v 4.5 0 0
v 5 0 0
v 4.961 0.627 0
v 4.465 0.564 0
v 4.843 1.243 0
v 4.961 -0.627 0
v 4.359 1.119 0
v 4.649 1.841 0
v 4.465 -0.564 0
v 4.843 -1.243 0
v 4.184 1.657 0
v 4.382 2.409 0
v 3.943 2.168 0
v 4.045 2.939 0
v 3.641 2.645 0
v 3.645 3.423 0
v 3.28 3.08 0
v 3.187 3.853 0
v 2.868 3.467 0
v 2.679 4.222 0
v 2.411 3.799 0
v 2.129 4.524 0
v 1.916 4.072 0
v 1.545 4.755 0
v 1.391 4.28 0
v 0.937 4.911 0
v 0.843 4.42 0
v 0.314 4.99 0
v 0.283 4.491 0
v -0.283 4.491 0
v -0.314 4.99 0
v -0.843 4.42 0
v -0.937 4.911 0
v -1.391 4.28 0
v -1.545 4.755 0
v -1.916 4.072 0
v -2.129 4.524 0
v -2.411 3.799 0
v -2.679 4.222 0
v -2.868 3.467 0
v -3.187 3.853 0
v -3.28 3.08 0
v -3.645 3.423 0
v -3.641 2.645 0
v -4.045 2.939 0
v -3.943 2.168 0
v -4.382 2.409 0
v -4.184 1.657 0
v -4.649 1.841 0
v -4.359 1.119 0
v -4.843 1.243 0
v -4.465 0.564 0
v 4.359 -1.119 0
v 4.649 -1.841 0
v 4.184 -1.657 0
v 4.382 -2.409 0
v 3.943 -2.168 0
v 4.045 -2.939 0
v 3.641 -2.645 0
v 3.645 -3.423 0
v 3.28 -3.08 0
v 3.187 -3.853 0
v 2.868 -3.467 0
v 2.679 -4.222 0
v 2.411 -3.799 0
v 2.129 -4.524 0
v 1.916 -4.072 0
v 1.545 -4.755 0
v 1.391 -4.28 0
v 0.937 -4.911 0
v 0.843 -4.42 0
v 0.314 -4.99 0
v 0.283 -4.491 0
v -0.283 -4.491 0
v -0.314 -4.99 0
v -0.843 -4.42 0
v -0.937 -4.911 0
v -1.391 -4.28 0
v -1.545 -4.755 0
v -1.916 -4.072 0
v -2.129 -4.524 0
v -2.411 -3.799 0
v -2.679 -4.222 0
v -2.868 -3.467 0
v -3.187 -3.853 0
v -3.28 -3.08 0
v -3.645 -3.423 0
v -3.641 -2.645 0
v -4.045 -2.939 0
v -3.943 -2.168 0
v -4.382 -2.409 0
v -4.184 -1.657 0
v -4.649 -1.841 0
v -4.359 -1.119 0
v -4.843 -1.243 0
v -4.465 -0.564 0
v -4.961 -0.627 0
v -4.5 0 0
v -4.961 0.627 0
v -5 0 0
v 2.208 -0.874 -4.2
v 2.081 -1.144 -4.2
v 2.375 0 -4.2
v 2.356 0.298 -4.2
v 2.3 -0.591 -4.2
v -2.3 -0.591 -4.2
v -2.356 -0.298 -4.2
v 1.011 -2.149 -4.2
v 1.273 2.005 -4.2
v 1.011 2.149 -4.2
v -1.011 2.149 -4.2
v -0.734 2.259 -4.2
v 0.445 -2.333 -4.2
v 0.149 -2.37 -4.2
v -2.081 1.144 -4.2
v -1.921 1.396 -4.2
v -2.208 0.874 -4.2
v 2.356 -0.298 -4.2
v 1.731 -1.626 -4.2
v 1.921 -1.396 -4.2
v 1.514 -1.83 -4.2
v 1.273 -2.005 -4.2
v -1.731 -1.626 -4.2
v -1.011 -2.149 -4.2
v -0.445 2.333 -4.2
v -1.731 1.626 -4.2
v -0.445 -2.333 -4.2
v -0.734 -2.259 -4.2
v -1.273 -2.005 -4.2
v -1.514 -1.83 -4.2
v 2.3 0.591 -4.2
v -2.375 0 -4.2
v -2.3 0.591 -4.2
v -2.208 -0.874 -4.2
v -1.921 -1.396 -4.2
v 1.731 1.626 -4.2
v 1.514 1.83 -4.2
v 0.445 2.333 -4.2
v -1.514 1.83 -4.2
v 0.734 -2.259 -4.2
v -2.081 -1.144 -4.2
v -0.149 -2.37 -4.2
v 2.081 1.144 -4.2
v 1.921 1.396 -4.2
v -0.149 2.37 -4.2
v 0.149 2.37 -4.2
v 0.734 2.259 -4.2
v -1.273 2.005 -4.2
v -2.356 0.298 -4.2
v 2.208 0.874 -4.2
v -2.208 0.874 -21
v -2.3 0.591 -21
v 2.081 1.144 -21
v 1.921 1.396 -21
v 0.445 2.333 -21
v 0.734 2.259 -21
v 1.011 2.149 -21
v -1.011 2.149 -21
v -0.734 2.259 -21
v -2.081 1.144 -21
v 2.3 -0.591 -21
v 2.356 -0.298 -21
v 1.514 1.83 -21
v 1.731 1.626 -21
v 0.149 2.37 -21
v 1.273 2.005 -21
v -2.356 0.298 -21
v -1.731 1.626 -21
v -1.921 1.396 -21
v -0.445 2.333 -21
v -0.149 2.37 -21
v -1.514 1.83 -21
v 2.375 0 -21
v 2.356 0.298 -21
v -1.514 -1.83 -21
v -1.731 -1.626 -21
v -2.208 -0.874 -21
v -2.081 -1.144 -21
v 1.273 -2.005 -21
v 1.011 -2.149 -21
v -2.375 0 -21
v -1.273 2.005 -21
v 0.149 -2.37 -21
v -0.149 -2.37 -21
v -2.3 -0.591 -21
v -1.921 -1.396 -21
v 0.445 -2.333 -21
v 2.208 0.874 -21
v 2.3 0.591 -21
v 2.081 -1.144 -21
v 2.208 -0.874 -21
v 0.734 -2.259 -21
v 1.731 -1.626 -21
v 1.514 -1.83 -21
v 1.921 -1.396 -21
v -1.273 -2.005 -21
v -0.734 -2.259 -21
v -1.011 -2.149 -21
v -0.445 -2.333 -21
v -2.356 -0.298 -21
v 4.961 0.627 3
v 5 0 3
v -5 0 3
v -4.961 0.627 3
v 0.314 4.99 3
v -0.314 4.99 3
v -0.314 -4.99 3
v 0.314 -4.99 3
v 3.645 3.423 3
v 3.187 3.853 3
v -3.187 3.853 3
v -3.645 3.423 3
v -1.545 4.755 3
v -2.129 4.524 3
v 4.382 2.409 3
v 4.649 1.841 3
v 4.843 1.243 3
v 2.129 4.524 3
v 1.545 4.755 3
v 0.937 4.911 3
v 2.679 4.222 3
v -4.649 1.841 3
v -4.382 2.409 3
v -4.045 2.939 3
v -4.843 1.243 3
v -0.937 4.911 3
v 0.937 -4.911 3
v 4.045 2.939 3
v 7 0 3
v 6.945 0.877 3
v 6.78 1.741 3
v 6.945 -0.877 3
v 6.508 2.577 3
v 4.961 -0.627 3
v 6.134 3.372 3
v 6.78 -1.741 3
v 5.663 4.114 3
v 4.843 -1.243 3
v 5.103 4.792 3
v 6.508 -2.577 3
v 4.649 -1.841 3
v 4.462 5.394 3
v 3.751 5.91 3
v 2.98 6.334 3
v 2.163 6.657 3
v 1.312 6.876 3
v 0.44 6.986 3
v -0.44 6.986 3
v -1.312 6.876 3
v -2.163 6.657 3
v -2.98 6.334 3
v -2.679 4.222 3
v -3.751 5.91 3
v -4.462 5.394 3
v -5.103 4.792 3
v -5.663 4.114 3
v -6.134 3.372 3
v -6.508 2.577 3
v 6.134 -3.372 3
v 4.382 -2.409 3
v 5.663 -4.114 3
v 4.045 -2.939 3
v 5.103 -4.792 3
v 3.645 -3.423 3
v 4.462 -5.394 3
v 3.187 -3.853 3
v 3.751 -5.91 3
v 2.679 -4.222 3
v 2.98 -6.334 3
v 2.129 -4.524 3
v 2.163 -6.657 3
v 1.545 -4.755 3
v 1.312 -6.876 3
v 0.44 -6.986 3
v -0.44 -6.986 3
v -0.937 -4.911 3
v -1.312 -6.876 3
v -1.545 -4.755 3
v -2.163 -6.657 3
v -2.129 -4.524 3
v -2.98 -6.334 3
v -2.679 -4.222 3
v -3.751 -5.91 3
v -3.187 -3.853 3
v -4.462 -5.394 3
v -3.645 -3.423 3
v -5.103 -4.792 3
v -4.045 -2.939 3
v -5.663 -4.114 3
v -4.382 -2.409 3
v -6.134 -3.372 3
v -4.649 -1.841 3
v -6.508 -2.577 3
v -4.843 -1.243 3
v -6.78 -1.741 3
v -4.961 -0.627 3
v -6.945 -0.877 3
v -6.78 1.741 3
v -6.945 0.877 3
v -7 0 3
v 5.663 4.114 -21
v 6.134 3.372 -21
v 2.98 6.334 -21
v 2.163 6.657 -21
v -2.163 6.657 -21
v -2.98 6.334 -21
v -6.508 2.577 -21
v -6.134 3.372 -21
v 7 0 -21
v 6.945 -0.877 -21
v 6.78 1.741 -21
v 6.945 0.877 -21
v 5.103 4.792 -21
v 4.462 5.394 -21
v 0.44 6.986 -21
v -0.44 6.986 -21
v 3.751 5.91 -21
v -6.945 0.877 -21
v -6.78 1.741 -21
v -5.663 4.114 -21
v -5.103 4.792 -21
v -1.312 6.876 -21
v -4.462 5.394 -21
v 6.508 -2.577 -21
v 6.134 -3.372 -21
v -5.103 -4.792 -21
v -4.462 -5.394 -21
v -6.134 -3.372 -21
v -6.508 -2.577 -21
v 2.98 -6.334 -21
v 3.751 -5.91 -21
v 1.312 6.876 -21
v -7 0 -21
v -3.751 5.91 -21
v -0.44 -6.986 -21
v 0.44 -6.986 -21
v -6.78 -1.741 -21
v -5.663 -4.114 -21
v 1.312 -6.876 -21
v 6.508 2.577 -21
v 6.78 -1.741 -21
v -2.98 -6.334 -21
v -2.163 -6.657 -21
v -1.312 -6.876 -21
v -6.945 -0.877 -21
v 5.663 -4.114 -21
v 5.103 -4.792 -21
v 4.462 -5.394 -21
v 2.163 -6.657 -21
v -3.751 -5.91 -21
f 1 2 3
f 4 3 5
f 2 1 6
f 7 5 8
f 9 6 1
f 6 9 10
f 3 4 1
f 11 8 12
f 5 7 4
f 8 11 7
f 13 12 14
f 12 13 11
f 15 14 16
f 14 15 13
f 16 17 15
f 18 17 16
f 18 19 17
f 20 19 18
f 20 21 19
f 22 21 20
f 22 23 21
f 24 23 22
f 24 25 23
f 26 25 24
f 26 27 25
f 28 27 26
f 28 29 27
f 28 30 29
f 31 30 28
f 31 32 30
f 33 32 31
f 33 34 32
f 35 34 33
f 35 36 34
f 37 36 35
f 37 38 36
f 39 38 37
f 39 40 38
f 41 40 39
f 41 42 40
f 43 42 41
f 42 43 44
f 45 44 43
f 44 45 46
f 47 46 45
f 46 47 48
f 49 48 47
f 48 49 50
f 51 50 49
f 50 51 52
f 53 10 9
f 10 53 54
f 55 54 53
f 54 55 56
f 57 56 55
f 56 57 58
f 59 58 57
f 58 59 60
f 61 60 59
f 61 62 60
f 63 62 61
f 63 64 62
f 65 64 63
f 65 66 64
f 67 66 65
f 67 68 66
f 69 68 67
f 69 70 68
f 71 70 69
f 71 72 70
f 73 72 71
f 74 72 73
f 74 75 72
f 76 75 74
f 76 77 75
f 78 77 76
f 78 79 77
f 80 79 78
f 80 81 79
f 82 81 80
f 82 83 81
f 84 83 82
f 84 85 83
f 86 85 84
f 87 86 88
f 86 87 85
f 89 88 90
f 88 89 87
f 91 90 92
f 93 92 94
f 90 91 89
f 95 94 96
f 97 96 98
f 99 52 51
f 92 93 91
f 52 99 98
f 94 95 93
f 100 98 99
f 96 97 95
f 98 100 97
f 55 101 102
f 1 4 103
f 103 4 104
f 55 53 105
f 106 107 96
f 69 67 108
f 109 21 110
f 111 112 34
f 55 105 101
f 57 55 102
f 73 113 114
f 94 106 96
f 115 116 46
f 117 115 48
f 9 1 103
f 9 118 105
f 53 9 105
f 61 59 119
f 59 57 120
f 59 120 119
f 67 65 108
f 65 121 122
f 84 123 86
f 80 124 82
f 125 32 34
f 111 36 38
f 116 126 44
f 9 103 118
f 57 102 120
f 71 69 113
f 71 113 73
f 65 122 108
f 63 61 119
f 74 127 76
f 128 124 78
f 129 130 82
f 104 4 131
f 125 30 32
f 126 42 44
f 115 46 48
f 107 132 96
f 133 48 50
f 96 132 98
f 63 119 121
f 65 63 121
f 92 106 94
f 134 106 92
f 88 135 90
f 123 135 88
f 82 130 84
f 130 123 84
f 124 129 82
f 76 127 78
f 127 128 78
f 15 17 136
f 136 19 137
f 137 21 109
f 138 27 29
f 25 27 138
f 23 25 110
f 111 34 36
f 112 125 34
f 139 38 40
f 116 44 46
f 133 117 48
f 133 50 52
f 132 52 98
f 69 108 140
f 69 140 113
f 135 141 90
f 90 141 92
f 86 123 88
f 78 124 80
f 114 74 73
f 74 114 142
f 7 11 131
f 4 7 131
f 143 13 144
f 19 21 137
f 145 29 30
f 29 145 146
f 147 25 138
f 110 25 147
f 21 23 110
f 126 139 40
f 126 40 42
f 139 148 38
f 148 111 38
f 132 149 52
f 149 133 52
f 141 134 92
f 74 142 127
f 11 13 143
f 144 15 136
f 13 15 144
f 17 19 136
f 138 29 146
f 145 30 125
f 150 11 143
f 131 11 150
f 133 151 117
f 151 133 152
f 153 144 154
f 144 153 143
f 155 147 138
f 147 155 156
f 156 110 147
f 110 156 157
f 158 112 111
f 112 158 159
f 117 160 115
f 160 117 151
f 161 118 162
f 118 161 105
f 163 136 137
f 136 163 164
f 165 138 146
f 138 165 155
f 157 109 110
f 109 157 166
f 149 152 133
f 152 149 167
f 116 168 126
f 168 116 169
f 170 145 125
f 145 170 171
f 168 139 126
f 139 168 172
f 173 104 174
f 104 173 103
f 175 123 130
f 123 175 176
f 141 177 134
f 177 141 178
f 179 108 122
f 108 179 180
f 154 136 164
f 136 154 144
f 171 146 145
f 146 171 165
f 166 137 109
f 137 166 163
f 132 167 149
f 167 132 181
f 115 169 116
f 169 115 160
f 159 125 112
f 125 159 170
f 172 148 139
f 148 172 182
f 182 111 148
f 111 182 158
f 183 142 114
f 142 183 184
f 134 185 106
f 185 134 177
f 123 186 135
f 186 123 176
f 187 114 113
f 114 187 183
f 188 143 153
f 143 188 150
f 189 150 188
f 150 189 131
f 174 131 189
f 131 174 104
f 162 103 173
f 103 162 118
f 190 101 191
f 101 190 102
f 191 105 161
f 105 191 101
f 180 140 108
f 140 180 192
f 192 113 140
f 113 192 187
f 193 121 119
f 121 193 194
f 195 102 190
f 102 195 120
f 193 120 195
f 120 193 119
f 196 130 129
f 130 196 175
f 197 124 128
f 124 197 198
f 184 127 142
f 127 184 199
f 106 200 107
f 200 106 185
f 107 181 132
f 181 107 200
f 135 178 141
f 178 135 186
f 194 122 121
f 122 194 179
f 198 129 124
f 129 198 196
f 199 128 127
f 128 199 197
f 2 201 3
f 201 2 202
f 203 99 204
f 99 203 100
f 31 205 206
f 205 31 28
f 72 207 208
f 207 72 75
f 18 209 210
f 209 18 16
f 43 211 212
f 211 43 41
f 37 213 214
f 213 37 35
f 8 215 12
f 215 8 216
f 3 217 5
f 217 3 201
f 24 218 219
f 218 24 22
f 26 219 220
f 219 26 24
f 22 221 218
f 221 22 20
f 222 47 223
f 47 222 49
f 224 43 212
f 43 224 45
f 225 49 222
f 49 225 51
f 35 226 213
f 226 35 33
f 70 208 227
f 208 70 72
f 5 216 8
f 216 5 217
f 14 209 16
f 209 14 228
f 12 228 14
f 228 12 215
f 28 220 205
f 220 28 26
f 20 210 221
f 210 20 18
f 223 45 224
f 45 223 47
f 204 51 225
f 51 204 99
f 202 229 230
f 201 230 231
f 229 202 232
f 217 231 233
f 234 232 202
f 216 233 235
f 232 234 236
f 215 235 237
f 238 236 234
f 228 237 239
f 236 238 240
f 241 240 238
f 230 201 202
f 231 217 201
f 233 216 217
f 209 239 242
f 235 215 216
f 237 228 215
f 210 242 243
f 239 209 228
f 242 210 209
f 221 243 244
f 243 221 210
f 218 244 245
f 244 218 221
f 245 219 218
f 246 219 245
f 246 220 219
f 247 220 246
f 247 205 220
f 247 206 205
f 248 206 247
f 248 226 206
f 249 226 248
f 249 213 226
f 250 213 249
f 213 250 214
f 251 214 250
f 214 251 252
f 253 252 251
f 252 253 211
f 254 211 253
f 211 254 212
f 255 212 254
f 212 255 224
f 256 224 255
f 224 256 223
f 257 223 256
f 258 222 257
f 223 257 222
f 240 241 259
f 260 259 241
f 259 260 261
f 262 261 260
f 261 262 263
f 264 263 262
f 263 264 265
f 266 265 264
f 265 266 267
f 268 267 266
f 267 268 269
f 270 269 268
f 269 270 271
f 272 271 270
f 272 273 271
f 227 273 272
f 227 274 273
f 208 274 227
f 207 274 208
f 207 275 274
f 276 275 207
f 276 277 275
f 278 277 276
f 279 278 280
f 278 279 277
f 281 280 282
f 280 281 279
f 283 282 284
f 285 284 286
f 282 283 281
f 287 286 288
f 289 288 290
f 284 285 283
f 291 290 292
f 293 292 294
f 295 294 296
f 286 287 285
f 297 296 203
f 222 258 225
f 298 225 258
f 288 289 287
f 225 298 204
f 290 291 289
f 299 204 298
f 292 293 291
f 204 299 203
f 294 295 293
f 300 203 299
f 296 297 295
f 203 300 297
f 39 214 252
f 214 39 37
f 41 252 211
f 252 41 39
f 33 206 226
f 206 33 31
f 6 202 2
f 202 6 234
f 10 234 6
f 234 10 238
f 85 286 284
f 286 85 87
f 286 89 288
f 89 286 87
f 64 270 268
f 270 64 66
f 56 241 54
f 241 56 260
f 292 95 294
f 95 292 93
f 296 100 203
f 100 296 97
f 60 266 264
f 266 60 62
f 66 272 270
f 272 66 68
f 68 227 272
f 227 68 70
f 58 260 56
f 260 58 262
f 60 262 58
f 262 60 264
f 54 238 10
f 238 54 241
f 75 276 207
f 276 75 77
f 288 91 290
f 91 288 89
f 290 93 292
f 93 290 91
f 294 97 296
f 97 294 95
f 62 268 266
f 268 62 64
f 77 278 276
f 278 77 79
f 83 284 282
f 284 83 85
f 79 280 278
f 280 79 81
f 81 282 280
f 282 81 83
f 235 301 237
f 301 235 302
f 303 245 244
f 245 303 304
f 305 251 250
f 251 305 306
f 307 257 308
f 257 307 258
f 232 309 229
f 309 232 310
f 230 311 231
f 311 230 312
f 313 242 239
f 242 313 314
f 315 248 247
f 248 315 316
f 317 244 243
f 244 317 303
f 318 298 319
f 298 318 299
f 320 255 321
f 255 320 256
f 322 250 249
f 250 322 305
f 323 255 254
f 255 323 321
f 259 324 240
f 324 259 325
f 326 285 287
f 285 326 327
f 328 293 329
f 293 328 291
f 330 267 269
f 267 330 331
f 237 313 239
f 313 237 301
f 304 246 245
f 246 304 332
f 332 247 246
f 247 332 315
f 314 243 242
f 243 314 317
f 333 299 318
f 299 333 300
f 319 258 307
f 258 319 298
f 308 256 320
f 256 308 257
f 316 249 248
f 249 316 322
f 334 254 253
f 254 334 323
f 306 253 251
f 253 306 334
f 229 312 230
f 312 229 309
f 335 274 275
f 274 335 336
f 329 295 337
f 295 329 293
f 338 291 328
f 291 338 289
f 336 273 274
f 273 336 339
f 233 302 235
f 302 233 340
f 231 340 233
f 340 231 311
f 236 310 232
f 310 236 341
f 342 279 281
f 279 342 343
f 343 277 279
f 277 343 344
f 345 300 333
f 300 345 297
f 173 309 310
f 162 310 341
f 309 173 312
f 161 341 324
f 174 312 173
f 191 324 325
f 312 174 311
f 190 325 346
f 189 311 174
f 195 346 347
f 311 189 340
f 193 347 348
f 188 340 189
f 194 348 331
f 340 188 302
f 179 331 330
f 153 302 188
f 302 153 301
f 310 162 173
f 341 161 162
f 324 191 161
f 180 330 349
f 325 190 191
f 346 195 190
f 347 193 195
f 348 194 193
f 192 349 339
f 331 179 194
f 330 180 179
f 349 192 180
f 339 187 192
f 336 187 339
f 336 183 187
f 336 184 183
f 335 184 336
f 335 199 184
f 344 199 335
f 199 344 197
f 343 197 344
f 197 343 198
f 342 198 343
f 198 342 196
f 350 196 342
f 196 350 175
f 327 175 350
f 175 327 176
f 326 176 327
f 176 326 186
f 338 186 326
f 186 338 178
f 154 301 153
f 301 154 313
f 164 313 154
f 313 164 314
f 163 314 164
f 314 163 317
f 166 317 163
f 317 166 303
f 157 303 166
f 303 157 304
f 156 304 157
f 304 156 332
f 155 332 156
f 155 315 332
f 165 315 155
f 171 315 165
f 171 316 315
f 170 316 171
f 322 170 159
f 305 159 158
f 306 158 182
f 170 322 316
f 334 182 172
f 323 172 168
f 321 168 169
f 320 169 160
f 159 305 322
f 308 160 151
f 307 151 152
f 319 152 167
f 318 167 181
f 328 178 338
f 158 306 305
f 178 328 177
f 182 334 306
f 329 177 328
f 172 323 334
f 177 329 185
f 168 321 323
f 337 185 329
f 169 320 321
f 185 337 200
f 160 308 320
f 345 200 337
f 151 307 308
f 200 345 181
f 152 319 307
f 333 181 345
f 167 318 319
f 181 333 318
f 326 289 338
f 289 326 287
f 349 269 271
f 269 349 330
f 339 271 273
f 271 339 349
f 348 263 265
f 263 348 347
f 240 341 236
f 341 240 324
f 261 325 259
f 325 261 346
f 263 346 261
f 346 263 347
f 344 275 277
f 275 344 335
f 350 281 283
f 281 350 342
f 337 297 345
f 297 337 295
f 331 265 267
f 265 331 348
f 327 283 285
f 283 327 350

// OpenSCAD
$fn = 50;

difference() {
	union() {
		translate(v = [0, 0, -21.0]) {
			cylinder(h = 24, r = 7.0);
		}
	}
	union() {
		translate(v = [0, 0, 0]) {
			rotate(a = [0, 0, 0]) {
				difference() {
					union() {
						translate(v = [0, 0, -24.0]) {
							cylinder(h = 24, r = 2.25);
						}
						translate(v = [0, 0, -4.2]) {
							cylinder(h = 4.2, r1 = 2.375, r2 = 4.5);
						}
						translate(v = [0, 0, -24.0]) {
							cylinder(h = 24, r = 2.375);
						}
						translate(v = [0, 0, -24.0]) {
							cylinder(h = 24, r = 2.25);
						}
					}
					union();
				}
			}
		}
		#cylinder(h = 3, r = 5.0);
	}
}
